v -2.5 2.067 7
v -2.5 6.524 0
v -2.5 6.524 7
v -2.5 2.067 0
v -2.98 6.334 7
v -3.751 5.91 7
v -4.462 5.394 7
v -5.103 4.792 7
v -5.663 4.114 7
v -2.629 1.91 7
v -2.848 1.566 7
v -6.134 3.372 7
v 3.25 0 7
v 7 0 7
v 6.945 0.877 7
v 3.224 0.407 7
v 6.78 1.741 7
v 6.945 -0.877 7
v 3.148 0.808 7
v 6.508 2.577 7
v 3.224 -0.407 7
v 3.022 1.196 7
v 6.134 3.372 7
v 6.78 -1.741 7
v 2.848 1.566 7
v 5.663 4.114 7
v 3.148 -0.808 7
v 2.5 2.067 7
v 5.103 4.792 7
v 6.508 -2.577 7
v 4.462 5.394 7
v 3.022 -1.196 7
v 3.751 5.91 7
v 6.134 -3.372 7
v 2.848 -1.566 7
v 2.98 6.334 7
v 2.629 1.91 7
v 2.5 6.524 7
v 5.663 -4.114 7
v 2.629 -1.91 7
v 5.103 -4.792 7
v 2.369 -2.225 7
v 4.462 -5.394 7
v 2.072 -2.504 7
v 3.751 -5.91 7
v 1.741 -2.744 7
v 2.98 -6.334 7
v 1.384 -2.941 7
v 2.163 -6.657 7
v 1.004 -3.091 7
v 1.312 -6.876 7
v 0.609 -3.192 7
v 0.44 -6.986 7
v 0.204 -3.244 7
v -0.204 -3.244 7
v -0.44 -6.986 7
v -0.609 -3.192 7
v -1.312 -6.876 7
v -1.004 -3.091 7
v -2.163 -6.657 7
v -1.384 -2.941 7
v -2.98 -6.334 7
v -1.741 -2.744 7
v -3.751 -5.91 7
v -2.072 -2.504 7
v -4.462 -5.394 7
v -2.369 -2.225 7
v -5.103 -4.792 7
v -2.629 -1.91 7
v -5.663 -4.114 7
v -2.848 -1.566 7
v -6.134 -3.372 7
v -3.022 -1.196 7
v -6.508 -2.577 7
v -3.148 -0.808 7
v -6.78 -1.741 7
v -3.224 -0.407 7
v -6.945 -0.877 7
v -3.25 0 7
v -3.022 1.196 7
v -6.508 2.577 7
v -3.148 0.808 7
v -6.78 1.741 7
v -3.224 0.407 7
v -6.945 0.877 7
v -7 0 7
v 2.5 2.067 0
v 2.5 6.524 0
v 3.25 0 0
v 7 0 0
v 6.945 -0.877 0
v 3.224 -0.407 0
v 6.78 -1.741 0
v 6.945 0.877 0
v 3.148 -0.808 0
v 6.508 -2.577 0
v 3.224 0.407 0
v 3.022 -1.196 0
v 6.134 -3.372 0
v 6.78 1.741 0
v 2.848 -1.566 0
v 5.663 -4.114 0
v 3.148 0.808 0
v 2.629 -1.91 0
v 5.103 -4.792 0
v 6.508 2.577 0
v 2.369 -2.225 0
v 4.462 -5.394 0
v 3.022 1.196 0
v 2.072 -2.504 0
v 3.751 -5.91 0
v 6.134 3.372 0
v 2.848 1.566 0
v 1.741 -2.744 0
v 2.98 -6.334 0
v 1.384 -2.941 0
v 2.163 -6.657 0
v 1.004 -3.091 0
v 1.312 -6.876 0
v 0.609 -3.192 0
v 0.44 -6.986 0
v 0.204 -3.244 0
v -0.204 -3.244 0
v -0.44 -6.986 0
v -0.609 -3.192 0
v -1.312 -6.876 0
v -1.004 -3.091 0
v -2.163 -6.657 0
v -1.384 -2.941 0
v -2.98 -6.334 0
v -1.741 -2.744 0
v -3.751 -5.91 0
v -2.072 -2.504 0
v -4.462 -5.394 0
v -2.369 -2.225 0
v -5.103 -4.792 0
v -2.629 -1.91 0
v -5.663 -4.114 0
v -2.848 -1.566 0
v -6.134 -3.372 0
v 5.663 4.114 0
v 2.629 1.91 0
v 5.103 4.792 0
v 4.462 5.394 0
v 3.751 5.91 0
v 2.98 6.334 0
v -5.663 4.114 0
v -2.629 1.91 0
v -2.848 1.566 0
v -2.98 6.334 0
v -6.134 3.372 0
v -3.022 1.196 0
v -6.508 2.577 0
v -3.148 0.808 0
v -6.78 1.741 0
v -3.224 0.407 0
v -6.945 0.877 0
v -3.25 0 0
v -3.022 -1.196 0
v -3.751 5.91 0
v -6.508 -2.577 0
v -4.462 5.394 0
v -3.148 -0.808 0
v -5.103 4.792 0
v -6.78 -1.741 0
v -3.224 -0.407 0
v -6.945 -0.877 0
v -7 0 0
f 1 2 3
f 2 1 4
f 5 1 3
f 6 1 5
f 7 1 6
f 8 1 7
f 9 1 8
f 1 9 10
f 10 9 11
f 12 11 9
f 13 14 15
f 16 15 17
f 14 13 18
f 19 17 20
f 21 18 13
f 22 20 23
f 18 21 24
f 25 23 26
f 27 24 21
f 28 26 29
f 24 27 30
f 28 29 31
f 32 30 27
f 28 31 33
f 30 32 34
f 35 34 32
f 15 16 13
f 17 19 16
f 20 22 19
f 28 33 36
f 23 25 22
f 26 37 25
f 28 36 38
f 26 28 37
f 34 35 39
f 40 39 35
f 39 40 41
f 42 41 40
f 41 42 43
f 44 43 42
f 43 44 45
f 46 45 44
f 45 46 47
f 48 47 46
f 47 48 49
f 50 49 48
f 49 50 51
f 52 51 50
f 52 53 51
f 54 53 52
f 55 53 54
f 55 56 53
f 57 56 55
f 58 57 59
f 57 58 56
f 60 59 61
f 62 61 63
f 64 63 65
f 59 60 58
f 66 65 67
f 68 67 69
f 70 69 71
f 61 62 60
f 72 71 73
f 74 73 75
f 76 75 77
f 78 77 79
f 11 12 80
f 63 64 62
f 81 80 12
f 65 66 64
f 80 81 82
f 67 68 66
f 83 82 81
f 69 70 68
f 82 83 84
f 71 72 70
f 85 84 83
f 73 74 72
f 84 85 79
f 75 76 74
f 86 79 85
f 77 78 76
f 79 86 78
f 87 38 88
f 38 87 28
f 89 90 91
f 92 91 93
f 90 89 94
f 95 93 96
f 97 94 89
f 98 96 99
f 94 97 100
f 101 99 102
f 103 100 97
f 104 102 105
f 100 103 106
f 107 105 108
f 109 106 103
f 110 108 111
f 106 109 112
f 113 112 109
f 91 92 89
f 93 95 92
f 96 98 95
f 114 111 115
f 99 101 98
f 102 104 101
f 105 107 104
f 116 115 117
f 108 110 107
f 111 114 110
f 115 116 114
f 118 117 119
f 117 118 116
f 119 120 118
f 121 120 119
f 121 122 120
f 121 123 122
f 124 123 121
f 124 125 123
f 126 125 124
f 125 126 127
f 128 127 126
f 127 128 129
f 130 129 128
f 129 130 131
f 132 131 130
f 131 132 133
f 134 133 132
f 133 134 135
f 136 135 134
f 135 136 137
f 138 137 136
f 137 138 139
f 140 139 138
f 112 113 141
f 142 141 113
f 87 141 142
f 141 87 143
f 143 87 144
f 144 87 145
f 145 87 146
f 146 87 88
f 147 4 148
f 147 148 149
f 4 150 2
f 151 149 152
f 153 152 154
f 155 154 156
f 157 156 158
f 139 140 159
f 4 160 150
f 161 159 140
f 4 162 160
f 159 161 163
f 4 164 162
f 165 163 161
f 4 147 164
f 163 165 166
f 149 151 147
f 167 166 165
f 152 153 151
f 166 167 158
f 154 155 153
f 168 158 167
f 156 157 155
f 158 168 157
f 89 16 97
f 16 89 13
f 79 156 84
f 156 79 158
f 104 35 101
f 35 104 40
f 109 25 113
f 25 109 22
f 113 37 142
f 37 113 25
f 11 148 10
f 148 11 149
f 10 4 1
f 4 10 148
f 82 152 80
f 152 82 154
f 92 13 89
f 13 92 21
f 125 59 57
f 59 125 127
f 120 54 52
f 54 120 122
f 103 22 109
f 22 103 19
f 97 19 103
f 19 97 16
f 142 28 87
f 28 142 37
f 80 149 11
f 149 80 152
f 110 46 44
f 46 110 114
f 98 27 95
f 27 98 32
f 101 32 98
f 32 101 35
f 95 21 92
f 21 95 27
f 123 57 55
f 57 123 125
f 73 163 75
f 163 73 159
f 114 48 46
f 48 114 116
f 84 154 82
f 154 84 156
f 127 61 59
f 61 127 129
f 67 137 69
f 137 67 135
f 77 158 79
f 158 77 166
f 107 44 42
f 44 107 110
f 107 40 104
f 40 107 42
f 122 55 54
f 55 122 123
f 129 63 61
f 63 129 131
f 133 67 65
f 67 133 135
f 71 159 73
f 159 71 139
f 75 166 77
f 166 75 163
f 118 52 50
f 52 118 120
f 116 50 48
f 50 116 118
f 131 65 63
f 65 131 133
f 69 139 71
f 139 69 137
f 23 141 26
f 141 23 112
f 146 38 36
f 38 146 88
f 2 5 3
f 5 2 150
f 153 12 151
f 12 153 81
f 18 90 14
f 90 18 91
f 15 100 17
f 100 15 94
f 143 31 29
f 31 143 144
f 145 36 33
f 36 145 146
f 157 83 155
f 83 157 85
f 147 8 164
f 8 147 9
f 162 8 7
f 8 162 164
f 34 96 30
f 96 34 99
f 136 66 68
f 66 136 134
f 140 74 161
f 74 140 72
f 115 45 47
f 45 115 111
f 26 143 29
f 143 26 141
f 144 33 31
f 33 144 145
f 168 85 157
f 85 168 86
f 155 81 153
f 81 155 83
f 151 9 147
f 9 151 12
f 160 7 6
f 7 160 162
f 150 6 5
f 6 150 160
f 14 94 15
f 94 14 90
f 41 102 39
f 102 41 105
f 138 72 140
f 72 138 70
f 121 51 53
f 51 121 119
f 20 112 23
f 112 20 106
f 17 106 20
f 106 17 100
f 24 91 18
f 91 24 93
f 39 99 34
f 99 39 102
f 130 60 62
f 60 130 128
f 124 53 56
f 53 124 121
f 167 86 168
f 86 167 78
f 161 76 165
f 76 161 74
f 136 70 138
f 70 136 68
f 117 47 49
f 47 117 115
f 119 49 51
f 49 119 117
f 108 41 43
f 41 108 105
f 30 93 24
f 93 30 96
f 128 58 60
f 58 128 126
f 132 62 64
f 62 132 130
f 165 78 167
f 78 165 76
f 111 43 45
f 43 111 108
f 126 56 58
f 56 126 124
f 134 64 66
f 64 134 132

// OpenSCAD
$fn = 50;


difference() {
	union() {
		cylinder(h = 7, r = 7.0000000000);
	}
	union() {
		#translate(v = [-2.5000000000, 0.0000000000, 0]) {
			cube(size = [5, 20, 7]);
		}
		translate(v = [0, 0, -100]) {
			cylinder(h = 200, r = 3.2500000000);
		}
		translate(v = [0, 0, -100]) {
			cylinder(h = 200, r = 1.8000000000);
		}
	}
}
